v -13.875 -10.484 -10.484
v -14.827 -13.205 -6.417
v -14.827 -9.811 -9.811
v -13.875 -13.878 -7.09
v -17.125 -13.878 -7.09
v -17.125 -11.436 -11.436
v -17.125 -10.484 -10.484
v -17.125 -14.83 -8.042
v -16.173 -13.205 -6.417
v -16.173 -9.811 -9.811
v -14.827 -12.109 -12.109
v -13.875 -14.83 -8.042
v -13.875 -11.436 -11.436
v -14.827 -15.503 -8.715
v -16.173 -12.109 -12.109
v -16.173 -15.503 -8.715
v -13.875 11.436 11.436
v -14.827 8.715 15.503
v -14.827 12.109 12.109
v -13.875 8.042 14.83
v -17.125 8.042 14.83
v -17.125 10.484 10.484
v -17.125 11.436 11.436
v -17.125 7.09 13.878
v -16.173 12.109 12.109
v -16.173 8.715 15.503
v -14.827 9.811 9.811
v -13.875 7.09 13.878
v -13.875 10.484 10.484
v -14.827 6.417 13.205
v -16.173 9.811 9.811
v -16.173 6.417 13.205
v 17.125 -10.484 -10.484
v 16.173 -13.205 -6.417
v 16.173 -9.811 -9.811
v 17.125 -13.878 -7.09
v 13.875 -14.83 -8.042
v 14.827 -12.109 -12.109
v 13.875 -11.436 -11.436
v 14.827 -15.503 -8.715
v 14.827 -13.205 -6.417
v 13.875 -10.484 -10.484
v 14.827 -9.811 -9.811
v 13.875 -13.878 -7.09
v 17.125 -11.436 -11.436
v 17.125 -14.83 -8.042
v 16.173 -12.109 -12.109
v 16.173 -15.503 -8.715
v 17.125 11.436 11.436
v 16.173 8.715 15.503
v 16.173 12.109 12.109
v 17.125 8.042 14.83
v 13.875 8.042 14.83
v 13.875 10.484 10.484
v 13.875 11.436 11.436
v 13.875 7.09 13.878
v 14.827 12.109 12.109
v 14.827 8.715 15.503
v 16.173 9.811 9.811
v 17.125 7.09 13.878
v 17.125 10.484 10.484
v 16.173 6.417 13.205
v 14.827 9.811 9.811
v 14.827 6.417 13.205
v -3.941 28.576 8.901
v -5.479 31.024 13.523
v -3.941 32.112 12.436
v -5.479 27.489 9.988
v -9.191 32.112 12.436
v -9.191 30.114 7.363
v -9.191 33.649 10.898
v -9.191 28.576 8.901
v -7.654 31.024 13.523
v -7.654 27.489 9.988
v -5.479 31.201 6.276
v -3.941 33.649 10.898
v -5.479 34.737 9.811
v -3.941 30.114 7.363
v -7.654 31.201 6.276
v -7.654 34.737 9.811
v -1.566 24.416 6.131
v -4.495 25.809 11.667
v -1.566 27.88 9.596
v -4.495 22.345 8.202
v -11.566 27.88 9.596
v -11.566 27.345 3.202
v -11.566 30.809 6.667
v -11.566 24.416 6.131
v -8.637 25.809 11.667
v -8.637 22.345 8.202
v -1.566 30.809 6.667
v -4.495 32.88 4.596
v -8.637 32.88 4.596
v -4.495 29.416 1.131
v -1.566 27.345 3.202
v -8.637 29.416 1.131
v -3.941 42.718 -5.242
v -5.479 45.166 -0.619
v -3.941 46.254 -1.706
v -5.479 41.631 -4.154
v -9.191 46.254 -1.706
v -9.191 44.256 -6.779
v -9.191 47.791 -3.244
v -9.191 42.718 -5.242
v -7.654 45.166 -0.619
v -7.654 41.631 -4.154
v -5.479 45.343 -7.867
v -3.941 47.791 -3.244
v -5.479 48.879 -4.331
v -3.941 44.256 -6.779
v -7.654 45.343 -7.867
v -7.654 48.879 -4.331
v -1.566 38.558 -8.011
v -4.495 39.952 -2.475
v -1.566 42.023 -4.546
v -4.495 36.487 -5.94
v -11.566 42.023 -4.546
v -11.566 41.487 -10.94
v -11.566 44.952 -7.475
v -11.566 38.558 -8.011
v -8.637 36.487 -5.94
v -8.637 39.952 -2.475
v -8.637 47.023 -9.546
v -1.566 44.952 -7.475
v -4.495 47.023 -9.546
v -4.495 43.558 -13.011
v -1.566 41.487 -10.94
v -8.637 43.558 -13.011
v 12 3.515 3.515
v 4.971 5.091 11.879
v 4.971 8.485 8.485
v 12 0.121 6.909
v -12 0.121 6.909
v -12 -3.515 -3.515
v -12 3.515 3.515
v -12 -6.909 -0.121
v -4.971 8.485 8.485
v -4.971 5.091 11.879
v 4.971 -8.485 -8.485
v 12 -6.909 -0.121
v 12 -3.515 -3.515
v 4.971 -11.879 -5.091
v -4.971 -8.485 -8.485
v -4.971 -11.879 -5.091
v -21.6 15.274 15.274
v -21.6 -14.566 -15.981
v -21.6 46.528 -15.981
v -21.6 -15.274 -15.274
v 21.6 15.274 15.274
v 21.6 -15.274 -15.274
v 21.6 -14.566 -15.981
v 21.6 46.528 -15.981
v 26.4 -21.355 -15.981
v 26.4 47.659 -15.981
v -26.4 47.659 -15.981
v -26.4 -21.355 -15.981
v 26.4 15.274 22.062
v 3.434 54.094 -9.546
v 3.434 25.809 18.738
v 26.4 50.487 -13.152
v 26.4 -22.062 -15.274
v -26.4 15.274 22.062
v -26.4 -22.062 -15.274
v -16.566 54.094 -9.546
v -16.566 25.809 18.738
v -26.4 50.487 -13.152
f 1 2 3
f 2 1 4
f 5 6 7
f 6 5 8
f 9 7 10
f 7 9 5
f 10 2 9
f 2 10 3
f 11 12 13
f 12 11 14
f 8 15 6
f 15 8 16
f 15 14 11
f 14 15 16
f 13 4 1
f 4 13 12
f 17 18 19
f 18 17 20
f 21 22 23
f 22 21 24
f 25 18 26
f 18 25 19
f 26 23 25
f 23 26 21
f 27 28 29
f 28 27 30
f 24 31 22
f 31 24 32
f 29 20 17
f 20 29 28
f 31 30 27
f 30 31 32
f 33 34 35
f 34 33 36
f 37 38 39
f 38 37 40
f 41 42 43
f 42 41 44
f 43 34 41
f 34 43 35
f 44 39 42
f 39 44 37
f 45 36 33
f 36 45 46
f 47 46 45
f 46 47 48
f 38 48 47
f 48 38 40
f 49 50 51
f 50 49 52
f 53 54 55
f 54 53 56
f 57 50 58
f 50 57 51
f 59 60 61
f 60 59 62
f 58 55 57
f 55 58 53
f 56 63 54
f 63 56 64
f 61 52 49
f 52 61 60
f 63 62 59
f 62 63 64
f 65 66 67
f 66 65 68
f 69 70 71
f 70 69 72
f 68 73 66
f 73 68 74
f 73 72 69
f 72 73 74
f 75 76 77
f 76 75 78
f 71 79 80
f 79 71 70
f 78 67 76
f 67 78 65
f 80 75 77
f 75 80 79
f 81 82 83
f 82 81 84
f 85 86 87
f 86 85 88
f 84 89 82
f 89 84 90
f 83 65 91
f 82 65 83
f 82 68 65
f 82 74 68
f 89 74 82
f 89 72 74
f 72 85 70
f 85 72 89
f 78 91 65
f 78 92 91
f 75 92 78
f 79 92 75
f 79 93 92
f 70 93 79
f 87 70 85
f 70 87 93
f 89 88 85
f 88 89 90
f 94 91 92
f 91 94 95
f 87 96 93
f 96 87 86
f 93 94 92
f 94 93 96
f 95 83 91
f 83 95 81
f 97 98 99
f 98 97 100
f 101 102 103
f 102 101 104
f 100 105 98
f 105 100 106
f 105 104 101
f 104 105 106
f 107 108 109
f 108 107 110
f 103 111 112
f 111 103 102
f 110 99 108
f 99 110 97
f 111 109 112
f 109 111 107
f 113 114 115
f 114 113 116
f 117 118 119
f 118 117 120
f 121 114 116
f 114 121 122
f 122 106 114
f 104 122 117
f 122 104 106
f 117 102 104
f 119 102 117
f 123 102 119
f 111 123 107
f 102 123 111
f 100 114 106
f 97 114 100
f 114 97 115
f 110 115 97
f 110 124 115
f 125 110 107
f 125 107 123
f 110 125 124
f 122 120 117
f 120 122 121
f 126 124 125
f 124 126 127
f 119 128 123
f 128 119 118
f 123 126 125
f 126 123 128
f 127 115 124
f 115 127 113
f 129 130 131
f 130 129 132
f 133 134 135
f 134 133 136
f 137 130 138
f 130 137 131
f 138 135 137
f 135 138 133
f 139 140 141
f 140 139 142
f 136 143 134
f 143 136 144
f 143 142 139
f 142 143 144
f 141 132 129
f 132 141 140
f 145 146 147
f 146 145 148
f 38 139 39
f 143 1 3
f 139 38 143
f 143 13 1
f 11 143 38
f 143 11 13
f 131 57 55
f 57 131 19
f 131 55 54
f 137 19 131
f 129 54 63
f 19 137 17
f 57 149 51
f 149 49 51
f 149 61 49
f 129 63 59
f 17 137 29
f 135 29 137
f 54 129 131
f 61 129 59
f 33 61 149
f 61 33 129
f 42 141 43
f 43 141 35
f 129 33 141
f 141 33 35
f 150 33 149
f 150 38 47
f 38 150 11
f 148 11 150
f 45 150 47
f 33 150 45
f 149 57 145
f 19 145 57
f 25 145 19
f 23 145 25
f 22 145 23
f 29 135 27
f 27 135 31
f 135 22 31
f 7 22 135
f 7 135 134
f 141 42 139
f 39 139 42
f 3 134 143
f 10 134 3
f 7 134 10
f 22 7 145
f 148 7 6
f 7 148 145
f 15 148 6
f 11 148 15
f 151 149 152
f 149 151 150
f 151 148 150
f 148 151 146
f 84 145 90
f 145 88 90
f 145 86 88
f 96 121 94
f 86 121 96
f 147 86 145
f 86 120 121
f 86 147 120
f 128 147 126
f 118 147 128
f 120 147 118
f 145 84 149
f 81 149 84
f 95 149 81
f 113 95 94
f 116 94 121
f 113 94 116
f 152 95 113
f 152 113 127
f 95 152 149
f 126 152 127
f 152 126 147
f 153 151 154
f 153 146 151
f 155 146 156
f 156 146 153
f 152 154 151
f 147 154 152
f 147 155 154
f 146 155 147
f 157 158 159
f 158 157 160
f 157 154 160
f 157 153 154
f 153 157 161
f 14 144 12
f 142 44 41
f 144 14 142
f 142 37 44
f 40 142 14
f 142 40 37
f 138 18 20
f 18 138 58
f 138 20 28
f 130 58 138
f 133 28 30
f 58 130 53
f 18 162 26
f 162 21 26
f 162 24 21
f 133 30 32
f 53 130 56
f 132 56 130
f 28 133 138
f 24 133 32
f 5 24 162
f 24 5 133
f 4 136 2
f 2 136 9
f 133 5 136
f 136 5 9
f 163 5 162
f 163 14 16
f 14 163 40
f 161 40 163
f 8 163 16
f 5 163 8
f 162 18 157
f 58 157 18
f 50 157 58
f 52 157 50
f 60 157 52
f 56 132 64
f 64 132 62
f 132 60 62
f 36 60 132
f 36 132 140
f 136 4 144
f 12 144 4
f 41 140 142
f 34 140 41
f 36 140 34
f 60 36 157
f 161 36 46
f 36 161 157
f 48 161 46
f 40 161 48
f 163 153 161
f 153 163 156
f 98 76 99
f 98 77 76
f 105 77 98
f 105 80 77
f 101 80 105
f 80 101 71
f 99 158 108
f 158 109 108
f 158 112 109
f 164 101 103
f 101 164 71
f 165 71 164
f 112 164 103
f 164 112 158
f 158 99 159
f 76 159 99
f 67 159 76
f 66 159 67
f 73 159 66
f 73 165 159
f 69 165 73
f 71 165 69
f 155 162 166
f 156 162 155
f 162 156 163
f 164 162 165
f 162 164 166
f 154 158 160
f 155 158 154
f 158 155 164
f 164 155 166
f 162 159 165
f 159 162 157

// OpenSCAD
// file: util.scad
function accurate_diam(diam,sides) = 1 / cos(180/sides) / 2 * diam;

module hole(diam,len,sides=8) {
  rotate([0,0,180/sides]) {
    cylinder(r=accurate_diam(diam,sides),h=len,center=true,$fn=sides);
  }
}

module accurate_circle(diam,sides=8) {
  rotate([0,0,180/sides]) {
    circle(r=accurate_diam(diam,sides),$fn=sides);
  }
}

module debug_axes() {
  color("red") {
    translate([50,0,0]) cube([100,.2,.2],center=true);
    translate([0,50,0]) cube([.2,100,.2],center=true);
    translate([0,0,50]) cube([.2,.2,100],center=true);
  }
}

module ring(id,thickness,height,fn=16) {
  od = id + thickness;
  linear_extrude(height=height,center=true) {
    difference() {
      accurate_circle(od,fn);
      accurate_circle(id,fn);
    }
  }
}

module rounded_square(width,depth,diam,fn=resolution) {
  pos_x = width/2-diam/2;
  pos_y = depth/2-diam/2;

  hull() {
    for(x=[left,right]) {
      for(y=[front,rear]) {
        translate([x*pos_x,y*pos_y,0]) {
          accurate_circle(diam,fn);
        }
      }
    }
  }
}

module rounded_cube(width,depth,height,diam,fn=resolution) {
  linear_extrude(height=height,center=true,convexity=3) {
    rounded_square(width,depth,diam,fn);
  }
}
// main file
include <main.scad>;

for(side=[0]) {
  mirror([side,0,0]) {
    rotate([45,0,0]) {
      color(colors[side]) motor_mount();
    }
  }
}
